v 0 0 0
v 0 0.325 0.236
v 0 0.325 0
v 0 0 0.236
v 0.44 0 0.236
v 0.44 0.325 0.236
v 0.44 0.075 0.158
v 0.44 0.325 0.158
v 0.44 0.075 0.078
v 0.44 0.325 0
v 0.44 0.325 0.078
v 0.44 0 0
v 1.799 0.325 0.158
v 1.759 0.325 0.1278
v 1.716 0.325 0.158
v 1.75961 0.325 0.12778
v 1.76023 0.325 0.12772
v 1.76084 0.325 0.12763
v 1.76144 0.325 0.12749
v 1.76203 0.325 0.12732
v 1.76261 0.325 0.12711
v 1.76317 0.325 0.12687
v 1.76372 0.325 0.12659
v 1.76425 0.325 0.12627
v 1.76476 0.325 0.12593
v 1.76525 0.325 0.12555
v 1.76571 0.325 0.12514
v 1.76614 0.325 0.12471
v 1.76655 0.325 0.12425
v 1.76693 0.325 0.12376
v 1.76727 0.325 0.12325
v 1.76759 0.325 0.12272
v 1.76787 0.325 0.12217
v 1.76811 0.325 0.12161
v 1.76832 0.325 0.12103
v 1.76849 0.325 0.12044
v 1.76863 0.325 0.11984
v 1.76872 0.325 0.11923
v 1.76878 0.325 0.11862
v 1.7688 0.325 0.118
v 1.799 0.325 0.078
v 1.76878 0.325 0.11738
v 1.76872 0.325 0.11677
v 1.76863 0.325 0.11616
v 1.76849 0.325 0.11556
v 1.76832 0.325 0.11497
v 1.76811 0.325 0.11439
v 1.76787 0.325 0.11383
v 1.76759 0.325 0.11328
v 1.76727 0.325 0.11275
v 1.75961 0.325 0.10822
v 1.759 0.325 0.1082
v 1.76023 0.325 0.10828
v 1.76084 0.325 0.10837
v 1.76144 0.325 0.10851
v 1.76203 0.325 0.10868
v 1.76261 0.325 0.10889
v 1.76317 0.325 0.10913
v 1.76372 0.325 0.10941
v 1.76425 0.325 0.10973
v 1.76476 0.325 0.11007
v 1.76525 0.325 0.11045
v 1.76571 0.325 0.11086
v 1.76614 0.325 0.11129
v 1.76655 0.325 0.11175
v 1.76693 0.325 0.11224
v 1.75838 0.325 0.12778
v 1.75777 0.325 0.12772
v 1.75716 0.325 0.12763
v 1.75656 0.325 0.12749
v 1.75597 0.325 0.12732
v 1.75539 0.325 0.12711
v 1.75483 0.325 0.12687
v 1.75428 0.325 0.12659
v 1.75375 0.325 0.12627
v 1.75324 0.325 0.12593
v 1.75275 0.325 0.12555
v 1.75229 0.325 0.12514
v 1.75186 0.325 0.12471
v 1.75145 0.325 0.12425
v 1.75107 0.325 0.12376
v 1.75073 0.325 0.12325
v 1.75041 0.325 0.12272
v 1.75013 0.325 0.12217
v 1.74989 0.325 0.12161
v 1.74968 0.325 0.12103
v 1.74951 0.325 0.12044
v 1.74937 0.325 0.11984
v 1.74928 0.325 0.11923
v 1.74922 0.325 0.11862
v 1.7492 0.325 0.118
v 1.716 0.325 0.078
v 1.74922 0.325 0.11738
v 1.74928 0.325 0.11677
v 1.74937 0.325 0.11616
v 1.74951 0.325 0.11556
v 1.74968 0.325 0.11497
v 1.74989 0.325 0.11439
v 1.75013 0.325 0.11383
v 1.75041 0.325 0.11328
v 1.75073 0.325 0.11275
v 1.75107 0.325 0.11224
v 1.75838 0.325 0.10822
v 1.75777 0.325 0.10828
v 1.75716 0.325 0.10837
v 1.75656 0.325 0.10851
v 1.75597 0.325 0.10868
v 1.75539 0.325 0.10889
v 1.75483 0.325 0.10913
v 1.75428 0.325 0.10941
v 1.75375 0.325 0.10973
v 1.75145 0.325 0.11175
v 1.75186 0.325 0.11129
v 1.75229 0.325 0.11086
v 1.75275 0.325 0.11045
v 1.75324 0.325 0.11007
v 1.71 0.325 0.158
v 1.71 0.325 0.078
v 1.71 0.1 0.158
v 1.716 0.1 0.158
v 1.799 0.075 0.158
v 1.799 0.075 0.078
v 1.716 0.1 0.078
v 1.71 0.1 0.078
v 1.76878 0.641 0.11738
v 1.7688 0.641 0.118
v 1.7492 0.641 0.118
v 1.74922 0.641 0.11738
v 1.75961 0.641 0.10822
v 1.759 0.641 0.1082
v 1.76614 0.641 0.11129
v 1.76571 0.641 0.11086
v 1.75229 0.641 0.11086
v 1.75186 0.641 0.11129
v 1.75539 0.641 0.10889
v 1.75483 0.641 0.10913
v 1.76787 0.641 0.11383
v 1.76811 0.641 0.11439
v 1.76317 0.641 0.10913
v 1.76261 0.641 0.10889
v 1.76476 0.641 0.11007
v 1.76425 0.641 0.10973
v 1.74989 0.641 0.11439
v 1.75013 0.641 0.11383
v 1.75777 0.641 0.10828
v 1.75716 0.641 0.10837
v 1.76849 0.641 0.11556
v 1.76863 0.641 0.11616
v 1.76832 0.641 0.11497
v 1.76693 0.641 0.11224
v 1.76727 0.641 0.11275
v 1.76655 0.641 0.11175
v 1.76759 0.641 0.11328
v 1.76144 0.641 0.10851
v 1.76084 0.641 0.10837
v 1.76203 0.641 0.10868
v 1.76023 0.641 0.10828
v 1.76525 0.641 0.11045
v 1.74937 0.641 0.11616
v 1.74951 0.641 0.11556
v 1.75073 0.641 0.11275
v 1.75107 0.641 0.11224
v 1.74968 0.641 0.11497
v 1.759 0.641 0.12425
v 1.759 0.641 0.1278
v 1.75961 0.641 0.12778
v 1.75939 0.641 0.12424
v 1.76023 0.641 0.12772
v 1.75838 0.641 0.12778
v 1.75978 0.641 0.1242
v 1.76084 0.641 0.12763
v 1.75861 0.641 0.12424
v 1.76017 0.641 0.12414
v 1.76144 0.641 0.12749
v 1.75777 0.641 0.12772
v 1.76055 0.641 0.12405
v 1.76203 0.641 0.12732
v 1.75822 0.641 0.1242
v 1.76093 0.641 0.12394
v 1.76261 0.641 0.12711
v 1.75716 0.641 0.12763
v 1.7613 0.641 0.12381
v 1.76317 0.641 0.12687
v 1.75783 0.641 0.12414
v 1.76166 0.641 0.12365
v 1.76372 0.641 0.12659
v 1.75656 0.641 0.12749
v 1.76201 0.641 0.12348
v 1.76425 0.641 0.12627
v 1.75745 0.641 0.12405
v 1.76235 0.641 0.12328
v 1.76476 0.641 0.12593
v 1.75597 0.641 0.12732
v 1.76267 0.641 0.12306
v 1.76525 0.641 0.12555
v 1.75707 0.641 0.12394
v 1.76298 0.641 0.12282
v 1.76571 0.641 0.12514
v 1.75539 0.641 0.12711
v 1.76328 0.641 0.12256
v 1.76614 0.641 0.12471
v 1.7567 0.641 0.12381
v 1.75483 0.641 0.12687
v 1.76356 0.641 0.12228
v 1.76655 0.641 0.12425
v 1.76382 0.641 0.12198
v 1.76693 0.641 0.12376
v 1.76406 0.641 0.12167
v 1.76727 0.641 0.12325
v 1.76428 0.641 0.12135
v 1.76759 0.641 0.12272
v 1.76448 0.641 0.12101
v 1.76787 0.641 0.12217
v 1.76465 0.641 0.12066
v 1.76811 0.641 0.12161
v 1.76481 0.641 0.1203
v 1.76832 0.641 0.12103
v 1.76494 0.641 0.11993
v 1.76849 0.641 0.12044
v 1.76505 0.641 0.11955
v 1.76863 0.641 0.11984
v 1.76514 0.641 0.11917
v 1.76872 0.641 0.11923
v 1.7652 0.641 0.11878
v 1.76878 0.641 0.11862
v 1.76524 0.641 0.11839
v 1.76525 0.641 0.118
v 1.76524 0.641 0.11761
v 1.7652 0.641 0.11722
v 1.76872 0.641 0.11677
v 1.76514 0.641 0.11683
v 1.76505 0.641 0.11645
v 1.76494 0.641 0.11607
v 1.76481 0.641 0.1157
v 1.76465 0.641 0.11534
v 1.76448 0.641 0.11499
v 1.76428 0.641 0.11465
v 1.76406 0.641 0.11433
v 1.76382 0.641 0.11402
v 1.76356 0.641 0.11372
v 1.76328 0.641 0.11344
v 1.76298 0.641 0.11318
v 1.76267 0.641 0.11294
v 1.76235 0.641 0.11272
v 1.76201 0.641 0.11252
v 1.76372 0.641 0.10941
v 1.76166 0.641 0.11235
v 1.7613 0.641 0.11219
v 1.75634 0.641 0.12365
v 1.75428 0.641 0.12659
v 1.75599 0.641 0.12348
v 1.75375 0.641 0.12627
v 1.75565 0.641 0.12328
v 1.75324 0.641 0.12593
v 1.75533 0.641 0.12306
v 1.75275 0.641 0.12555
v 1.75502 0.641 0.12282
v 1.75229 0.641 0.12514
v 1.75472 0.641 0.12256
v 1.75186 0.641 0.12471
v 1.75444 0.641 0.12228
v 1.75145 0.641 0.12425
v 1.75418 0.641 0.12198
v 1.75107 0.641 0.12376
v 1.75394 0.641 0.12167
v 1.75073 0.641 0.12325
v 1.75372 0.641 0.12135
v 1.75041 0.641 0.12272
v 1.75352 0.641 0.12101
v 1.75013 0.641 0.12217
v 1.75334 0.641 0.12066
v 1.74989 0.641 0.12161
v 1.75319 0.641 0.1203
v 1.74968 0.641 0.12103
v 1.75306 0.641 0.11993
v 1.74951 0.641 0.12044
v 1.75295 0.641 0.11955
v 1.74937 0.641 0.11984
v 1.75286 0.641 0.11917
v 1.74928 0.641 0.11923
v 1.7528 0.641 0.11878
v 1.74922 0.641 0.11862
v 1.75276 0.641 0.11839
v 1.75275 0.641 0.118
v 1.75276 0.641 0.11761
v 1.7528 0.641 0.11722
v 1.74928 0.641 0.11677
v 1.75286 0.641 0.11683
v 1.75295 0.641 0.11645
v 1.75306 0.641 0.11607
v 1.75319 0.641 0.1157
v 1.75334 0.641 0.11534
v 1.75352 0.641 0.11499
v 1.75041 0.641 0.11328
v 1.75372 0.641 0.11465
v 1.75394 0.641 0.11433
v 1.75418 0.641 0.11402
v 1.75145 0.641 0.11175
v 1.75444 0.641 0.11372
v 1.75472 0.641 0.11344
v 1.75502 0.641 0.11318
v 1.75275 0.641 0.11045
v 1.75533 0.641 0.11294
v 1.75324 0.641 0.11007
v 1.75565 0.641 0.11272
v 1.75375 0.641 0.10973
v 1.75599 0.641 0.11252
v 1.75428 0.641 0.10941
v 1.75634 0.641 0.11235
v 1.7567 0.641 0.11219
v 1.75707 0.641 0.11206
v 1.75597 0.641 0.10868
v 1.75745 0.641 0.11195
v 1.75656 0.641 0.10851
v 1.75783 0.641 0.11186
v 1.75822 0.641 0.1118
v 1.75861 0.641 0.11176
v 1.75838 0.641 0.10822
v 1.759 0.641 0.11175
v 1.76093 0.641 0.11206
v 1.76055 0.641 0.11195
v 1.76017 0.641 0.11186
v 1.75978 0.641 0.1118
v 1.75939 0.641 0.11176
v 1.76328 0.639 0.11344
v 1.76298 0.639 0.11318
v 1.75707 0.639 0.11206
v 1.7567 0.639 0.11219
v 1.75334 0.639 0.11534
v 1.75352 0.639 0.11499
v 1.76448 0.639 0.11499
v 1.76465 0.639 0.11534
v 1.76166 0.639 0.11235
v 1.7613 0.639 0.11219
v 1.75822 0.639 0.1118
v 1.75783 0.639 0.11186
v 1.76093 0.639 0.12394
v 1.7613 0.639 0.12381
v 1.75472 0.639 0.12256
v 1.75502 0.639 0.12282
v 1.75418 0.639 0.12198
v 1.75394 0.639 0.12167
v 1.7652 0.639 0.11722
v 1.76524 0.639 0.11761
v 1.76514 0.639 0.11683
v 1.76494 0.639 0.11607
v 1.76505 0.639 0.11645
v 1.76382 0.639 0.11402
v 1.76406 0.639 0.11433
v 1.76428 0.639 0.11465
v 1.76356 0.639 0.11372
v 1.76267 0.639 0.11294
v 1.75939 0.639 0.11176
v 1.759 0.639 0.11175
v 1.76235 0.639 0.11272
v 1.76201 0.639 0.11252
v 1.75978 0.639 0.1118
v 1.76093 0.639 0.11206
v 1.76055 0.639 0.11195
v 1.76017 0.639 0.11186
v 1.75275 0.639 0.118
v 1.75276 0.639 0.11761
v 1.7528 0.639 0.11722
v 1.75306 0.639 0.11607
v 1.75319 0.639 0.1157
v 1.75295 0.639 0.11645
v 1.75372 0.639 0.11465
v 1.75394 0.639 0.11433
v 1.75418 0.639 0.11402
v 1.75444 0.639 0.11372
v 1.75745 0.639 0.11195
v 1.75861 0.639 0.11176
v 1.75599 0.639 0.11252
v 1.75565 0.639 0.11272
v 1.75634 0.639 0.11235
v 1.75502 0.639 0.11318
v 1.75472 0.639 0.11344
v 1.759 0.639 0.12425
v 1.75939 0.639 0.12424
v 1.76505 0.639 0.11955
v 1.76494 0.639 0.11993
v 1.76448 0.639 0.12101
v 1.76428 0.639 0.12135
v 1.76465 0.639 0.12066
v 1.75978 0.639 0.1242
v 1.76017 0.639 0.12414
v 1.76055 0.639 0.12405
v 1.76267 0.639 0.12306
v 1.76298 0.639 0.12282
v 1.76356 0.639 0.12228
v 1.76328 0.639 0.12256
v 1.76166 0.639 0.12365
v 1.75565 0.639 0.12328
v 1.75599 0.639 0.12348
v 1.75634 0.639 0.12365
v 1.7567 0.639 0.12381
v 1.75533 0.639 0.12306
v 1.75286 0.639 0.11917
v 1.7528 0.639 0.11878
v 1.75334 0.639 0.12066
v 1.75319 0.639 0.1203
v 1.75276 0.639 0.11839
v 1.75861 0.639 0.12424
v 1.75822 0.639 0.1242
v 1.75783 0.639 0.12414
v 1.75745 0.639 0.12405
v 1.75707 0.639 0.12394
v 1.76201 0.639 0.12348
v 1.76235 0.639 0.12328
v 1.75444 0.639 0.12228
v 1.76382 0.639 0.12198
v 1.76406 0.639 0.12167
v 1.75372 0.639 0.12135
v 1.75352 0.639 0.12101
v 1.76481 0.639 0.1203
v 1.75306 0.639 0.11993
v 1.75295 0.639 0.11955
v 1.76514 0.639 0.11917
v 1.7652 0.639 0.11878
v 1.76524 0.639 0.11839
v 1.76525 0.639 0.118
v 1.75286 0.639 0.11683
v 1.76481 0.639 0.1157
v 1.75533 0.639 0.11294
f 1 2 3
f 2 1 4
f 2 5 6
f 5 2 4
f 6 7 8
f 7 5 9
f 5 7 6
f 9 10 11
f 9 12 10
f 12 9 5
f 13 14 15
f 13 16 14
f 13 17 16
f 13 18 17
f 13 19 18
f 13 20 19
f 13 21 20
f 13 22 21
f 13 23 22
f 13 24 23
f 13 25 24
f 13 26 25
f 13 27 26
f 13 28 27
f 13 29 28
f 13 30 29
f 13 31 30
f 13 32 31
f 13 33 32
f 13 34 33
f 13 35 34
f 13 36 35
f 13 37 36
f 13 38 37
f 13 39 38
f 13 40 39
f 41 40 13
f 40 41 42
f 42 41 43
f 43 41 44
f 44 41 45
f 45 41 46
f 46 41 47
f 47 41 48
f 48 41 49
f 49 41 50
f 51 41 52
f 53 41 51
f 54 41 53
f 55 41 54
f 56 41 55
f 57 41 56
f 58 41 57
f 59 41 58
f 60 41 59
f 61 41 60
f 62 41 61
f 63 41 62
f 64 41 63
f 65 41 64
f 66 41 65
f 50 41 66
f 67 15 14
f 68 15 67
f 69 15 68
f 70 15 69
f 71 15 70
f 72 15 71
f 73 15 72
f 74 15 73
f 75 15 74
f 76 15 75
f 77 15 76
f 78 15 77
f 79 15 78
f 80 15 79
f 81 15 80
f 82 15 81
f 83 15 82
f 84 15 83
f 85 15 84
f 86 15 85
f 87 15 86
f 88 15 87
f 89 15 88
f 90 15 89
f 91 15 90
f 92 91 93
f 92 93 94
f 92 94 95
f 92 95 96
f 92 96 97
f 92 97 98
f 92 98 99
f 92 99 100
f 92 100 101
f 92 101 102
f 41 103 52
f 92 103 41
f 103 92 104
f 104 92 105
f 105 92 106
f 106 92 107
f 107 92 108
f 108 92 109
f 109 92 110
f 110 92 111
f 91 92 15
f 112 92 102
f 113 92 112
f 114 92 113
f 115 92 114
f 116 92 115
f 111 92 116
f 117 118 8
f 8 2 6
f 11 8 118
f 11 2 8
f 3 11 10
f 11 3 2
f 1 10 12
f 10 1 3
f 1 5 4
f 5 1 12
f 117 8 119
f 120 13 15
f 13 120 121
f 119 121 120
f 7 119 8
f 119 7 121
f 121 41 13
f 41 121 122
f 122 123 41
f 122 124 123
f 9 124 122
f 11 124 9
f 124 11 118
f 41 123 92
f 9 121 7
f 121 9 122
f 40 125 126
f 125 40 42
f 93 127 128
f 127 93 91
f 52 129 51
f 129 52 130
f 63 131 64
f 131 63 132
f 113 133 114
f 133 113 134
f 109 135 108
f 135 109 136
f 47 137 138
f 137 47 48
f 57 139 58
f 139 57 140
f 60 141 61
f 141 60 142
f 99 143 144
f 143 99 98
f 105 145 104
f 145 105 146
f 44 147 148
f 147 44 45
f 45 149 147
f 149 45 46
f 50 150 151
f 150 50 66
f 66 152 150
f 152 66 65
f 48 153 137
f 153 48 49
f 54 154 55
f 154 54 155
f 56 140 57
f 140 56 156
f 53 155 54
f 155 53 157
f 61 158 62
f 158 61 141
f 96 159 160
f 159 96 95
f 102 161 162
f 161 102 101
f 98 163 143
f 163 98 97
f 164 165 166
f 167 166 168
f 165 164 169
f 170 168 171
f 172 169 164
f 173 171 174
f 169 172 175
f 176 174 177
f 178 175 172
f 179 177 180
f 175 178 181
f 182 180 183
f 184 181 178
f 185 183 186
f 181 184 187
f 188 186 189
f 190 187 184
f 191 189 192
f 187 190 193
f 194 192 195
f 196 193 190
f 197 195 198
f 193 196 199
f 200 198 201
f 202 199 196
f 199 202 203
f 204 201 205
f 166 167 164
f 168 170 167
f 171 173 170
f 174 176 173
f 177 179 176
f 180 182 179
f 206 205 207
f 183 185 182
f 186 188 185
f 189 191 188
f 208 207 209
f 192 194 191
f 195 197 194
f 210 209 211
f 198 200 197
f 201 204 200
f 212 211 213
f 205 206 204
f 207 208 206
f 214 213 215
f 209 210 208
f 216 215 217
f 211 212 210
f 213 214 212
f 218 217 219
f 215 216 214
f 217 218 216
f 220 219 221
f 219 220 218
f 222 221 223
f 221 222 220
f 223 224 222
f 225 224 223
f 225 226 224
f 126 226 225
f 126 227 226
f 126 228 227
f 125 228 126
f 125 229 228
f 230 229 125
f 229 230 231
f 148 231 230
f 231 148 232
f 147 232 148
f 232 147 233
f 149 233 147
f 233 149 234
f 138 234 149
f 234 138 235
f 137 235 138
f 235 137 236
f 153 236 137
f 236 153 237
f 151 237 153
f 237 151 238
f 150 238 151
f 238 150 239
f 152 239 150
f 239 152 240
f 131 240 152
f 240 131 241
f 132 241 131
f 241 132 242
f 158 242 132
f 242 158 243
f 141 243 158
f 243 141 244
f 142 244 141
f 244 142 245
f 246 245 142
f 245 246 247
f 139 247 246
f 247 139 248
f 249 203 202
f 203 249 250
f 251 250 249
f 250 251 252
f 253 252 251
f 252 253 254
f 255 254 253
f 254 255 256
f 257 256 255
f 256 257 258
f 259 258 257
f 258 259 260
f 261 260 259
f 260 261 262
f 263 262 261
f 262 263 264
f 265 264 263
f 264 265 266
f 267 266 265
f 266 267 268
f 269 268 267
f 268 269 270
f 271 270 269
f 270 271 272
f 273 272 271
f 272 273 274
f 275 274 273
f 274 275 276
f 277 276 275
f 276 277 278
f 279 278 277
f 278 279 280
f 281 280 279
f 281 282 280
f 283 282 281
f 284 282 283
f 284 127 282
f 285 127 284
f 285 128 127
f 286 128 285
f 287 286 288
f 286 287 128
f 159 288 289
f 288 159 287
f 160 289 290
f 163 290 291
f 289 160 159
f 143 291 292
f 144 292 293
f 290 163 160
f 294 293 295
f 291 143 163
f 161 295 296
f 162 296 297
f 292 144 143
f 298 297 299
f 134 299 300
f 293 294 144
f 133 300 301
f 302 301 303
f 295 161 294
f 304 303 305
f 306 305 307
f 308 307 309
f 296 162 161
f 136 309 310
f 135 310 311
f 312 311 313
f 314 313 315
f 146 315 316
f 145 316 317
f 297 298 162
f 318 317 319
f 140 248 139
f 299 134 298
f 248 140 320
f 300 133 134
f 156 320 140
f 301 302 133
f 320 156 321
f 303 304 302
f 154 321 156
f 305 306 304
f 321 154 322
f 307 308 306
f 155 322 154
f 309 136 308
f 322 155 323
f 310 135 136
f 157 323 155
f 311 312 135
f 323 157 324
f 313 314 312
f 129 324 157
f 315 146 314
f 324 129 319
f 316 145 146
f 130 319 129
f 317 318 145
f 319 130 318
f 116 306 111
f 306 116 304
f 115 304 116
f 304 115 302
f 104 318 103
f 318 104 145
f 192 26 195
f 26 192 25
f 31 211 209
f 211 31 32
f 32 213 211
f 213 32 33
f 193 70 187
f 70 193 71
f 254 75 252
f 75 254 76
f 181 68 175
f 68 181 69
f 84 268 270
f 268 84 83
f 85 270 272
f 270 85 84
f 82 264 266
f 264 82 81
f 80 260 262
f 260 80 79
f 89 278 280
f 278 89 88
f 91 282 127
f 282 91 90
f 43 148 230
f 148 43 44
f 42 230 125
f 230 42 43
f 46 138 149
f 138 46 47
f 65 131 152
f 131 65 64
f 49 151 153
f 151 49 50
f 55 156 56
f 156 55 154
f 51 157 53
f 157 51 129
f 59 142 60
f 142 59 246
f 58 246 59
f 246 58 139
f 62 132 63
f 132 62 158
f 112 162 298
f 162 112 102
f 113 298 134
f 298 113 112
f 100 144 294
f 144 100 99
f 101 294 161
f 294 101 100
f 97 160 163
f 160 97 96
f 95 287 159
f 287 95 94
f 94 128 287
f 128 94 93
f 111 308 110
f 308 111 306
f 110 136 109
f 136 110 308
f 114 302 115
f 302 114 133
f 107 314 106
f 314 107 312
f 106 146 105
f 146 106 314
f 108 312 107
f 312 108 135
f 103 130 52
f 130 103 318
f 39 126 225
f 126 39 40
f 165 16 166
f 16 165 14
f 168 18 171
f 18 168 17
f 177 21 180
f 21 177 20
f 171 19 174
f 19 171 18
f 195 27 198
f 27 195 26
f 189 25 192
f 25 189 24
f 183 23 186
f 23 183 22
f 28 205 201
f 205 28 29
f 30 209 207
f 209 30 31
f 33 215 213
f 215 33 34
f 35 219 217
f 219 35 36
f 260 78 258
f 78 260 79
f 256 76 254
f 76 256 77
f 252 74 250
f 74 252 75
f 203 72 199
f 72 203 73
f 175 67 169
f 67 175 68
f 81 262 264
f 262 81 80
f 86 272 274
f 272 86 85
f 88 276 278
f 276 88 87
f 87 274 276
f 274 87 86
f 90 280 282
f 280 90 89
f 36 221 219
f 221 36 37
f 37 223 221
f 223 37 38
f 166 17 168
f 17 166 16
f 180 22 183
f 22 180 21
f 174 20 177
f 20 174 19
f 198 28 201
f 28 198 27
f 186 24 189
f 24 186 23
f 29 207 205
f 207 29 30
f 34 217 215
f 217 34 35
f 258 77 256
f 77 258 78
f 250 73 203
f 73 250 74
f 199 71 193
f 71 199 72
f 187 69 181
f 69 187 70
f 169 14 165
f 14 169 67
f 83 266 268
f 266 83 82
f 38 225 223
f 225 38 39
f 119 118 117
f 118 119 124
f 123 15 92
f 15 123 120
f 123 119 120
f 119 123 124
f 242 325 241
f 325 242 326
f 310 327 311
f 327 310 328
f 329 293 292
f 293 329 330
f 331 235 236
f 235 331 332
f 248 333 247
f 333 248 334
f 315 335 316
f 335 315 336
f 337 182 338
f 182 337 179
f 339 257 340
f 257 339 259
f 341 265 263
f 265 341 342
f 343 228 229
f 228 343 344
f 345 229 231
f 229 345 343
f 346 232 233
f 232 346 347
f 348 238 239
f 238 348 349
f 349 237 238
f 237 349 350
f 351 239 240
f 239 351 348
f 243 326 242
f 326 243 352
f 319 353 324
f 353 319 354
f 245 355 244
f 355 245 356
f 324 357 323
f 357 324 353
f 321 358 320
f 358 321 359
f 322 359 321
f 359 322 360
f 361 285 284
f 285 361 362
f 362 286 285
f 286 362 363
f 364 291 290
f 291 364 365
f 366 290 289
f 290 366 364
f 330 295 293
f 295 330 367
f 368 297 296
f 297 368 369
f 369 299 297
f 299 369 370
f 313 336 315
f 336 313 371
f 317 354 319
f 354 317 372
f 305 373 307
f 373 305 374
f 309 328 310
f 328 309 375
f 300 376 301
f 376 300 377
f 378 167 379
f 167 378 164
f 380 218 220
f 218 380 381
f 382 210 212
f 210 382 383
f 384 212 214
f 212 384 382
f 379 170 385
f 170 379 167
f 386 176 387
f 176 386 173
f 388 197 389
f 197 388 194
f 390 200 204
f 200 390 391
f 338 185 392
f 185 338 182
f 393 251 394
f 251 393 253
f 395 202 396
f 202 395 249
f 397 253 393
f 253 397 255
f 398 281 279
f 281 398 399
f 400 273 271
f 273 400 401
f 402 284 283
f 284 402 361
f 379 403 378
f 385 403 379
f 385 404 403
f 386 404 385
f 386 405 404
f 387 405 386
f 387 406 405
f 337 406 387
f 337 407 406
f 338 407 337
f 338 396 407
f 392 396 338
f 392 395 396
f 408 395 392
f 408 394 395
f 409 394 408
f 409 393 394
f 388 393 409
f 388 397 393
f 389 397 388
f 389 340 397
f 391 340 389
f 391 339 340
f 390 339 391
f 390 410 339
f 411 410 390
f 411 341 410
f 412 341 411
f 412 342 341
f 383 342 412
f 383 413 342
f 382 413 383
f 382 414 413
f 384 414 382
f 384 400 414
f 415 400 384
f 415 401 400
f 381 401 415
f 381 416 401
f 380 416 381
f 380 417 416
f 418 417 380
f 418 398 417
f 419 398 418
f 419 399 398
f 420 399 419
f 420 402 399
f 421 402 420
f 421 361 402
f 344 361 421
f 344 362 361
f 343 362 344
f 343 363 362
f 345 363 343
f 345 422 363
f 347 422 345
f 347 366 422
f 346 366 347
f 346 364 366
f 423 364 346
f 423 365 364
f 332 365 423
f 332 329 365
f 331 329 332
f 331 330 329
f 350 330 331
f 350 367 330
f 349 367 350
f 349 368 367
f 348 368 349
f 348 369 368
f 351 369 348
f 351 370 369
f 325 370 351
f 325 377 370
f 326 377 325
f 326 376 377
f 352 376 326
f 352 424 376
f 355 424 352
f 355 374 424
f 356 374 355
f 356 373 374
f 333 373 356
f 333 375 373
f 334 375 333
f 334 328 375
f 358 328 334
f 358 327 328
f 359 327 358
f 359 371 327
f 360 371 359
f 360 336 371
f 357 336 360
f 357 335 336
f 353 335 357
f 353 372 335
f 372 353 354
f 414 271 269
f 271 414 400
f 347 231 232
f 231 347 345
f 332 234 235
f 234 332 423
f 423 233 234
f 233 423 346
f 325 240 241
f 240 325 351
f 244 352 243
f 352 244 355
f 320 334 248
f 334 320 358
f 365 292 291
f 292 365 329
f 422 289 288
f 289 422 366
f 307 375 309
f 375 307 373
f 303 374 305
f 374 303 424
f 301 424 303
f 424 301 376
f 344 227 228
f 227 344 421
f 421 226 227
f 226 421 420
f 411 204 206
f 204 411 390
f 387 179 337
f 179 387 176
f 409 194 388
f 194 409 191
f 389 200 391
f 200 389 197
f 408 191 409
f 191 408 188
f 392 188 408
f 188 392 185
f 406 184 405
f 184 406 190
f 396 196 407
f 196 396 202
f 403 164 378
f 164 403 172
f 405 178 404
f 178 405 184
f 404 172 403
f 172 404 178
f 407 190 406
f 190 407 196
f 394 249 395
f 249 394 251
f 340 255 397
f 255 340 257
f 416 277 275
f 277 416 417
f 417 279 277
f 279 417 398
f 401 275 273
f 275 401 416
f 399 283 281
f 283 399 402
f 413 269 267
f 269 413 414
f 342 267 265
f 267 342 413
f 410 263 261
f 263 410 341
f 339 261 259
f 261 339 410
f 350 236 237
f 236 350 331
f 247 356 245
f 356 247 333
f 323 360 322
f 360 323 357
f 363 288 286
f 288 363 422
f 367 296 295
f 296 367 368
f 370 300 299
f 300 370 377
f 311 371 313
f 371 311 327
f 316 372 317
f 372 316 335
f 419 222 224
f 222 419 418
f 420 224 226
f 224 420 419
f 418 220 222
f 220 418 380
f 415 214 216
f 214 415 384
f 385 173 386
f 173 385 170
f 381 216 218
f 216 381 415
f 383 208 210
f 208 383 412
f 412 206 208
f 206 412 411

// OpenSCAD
//fn=numb of fragments; fa=min angle; fs=min size
//D exterior tuberia mm
$fn=100;
$fa=12;
$fs=2;

//Tanque
Tx=0.44;
Ty=0.325;
Tz=0.236;
//Canal
Cx=1.359;
Cy=0.25;
Cz=0.08;
//Pared Cámara
Px=0.006;
Py=0.225;
Pz=0.08;
//Chimney
Dc=0.0196;
Hc=0.316;
//Diafragma
d=0.0125;
Hd=0.002;

translate([Tx/2,Ty/2,Tz/2])
difference(){
union(){
    cube([Tx,Ty,Tz],true);
    translate([Tx/2+(Cx/2),Ty/2-(Cy/2),0]) cube([Cx,Cy,Cz],true);
    translate([Tx/2+Cx-(Cz/2),Ty/2,0])rotate([-90,0,0])cylinder(Hc,Dc/2,Dc/2,false);
}
    translate([Tx/2+Cx-(Cz+Px),Ty/2-(Py/2),0])cube([Px,Py,Pz],true);
    translate([Tx/2+Cx-(Cz/2),Ty/2+Hc-Hd,0])rotate([-90,0,0])cylinder(Hd,d/2,d/2,false);
}
